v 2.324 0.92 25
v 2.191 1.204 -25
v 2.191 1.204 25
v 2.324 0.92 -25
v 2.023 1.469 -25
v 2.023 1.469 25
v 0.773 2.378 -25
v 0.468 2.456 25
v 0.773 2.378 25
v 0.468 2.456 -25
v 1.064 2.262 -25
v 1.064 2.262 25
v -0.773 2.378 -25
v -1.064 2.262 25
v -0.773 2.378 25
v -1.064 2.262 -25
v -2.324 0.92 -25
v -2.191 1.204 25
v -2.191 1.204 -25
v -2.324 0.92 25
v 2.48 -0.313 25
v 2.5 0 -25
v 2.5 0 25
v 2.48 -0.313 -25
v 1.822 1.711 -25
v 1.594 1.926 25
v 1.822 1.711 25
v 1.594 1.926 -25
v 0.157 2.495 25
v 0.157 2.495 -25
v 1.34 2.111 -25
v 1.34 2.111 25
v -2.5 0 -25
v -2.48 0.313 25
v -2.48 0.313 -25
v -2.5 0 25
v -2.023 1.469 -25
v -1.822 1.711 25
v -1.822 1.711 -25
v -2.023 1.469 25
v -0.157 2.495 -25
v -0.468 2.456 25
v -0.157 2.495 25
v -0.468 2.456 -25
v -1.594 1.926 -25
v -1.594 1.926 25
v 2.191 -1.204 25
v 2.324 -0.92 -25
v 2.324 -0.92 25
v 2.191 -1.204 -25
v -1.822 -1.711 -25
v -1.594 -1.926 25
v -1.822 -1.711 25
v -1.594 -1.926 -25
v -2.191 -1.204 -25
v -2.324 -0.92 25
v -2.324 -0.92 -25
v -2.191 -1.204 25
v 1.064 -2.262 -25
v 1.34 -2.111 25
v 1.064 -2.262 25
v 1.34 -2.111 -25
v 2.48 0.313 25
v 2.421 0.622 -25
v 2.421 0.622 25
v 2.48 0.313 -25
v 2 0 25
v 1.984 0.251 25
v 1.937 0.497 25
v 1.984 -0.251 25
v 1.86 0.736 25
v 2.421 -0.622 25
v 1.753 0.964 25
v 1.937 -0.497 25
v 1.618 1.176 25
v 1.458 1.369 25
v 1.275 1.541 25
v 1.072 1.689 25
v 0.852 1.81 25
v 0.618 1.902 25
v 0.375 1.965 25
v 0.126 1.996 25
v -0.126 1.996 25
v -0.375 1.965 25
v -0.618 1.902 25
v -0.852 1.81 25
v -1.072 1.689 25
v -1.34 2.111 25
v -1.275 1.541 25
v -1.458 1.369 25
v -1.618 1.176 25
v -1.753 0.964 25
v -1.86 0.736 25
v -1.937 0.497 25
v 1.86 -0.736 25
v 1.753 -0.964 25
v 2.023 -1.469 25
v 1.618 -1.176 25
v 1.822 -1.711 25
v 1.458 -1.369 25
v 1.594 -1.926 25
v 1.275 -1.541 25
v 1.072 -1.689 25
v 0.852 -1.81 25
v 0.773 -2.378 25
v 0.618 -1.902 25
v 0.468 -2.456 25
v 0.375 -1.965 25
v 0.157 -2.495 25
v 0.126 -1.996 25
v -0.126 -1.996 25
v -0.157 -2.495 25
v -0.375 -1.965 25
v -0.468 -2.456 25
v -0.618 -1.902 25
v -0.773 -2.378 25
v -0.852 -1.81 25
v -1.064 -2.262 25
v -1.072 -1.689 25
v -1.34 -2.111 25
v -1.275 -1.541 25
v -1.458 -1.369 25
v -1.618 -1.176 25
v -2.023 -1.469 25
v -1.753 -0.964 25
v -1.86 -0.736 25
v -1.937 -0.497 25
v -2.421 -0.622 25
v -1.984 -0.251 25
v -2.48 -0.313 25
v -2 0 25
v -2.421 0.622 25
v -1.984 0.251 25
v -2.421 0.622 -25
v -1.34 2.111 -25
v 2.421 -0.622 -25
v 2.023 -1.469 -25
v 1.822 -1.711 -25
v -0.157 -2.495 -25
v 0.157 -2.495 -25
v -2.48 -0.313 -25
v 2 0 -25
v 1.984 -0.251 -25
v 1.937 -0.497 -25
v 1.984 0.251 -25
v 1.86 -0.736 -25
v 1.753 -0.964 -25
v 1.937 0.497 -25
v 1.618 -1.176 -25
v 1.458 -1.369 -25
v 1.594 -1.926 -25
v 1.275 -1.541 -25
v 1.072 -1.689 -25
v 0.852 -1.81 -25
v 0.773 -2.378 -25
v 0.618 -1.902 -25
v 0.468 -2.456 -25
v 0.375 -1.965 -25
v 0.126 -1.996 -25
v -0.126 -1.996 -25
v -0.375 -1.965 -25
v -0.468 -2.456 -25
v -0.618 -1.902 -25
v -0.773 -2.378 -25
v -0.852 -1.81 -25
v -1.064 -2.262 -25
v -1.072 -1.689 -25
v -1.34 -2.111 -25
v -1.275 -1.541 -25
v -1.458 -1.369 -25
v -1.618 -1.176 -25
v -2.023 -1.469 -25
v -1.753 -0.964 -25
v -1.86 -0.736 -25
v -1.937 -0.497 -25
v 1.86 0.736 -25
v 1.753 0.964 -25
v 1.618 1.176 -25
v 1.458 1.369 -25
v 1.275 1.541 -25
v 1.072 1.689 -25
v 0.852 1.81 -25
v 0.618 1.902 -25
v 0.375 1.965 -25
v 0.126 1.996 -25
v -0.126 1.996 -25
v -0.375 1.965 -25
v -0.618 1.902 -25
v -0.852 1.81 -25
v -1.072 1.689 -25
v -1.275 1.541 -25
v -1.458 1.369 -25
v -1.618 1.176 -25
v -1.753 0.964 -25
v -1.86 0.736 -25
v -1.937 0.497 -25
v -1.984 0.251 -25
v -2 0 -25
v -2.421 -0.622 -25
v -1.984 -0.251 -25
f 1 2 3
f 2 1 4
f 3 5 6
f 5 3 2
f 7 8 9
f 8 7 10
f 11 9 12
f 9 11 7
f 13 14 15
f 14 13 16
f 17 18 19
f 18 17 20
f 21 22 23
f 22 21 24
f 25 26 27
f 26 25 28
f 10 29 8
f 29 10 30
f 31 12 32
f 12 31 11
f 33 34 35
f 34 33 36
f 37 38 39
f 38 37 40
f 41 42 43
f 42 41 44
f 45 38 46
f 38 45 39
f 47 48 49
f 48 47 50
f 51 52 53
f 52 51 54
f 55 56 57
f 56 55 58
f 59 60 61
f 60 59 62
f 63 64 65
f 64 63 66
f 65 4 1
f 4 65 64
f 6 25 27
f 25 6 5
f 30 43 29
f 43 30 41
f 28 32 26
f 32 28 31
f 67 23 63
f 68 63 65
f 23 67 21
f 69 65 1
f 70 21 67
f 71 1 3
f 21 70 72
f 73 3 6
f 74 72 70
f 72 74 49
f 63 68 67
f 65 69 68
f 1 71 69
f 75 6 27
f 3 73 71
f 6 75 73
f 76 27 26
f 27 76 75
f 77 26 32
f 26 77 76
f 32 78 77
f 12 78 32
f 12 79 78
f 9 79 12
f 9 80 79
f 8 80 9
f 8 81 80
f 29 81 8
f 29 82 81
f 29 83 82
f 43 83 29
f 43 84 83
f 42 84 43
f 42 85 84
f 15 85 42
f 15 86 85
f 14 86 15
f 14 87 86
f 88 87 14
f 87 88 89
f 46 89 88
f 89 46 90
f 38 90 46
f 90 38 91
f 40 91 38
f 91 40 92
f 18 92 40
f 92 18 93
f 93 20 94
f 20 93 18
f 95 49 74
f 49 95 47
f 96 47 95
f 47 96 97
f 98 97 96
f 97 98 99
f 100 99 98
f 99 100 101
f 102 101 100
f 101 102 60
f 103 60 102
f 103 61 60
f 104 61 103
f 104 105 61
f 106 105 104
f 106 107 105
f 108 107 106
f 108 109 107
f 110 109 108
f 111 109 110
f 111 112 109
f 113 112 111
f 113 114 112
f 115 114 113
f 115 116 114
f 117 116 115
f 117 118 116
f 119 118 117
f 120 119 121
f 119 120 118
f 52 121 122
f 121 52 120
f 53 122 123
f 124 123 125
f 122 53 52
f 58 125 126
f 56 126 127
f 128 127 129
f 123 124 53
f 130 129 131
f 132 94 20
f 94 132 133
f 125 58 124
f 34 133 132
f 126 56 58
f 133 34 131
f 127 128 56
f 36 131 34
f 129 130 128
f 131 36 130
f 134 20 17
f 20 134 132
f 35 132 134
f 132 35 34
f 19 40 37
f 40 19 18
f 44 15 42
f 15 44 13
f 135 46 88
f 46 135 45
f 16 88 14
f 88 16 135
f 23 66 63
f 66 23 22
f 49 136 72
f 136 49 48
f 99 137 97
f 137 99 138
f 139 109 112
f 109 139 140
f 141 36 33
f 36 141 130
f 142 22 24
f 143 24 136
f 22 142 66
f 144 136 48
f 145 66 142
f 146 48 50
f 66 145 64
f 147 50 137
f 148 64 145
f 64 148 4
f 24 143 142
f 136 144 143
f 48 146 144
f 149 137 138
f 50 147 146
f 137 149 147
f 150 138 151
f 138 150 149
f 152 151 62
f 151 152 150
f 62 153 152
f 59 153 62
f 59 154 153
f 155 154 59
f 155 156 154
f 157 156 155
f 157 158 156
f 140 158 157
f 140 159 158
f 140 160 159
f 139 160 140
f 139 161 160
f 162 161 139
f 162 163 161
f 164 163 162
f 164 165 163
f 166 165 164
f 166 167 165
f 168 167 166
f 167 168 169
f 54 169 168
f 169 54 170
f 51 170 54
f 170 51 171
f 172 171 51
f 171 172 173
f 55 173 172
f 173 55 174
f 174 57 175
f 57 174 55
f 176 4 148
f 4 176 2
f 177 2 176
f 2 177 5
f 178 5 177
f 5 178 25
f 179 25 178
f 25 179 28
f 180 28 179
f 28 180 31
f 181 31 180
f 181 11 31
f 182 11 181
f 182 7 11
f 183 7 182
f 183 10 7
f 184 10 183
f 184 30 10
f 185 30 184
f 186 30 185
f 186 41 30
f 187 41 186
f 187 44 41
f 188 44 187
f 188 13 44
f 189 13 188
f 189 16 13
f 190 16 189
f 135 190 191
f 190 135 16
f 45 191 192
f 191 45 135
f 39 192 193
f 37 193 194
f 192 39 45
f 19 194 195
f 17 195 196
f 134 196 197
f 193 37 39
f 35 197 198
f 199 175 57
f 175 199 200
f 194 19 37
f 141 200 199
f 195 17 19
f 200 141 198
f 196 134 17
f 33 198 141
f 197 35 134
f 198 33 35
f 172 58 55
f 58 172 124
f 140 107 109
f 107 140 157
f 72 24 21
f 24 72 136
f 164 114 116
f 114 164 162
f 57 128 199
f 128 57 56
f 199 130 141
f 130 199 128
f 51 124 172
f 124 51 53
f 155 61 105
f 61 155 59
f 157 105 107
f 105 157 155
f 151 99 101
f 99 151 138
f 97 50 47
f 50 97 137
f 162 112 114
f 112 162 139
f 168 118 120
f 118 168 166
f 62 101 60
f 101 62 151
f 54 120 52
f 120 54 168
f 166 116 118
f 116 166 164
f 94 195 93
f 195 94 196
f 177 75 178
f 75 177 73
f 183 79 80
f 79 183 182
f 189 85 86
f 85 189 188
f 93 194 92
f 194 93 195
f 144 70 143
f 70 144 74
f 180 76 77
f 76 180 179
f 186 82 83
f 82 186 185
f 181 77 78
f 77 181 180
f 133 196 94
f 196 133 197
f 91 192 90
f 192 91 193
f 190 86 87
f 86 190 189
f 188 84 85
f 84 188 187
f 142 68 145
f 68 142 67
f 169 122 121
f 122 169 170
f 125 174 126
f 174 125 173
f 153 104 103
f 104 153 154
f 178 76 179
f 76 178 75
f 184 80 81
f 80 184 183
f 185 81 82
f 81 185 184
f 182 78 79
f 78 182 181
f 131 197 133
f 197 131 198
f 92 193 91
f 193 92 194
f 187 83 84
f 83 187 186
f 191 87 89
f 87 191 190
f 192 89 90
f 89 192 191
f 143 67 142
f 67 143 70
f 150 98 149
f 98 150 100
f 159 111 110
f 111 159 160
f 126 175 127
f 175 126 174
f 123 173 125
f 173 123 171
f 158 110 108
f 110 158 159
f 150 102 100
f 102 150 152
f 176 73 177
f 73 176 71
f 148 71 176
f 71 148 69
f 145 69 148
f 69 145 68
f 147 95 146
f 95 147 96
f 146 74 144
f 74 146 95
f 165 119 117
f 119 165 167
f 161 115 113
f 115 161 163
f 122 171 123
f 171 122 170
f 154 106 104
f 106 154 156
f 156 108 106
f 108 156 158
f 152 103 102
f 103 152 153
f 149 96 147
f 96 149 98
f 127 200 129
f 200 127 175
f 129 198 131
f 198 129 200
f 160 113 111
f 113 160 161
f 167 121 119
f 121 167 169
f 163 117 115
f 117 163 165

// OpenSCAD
$fn = 50;


difference() {
	union() {
		translate(v = [0, 0, -25.0000000000]) {
			cylinder(h = 50, r = 2.5000000000);
		}
	}
	union() {
		translate(v = [0, 0, -100.0000000000]) {
			cylinder(h = 200, r = 2);
		}
	}
}
